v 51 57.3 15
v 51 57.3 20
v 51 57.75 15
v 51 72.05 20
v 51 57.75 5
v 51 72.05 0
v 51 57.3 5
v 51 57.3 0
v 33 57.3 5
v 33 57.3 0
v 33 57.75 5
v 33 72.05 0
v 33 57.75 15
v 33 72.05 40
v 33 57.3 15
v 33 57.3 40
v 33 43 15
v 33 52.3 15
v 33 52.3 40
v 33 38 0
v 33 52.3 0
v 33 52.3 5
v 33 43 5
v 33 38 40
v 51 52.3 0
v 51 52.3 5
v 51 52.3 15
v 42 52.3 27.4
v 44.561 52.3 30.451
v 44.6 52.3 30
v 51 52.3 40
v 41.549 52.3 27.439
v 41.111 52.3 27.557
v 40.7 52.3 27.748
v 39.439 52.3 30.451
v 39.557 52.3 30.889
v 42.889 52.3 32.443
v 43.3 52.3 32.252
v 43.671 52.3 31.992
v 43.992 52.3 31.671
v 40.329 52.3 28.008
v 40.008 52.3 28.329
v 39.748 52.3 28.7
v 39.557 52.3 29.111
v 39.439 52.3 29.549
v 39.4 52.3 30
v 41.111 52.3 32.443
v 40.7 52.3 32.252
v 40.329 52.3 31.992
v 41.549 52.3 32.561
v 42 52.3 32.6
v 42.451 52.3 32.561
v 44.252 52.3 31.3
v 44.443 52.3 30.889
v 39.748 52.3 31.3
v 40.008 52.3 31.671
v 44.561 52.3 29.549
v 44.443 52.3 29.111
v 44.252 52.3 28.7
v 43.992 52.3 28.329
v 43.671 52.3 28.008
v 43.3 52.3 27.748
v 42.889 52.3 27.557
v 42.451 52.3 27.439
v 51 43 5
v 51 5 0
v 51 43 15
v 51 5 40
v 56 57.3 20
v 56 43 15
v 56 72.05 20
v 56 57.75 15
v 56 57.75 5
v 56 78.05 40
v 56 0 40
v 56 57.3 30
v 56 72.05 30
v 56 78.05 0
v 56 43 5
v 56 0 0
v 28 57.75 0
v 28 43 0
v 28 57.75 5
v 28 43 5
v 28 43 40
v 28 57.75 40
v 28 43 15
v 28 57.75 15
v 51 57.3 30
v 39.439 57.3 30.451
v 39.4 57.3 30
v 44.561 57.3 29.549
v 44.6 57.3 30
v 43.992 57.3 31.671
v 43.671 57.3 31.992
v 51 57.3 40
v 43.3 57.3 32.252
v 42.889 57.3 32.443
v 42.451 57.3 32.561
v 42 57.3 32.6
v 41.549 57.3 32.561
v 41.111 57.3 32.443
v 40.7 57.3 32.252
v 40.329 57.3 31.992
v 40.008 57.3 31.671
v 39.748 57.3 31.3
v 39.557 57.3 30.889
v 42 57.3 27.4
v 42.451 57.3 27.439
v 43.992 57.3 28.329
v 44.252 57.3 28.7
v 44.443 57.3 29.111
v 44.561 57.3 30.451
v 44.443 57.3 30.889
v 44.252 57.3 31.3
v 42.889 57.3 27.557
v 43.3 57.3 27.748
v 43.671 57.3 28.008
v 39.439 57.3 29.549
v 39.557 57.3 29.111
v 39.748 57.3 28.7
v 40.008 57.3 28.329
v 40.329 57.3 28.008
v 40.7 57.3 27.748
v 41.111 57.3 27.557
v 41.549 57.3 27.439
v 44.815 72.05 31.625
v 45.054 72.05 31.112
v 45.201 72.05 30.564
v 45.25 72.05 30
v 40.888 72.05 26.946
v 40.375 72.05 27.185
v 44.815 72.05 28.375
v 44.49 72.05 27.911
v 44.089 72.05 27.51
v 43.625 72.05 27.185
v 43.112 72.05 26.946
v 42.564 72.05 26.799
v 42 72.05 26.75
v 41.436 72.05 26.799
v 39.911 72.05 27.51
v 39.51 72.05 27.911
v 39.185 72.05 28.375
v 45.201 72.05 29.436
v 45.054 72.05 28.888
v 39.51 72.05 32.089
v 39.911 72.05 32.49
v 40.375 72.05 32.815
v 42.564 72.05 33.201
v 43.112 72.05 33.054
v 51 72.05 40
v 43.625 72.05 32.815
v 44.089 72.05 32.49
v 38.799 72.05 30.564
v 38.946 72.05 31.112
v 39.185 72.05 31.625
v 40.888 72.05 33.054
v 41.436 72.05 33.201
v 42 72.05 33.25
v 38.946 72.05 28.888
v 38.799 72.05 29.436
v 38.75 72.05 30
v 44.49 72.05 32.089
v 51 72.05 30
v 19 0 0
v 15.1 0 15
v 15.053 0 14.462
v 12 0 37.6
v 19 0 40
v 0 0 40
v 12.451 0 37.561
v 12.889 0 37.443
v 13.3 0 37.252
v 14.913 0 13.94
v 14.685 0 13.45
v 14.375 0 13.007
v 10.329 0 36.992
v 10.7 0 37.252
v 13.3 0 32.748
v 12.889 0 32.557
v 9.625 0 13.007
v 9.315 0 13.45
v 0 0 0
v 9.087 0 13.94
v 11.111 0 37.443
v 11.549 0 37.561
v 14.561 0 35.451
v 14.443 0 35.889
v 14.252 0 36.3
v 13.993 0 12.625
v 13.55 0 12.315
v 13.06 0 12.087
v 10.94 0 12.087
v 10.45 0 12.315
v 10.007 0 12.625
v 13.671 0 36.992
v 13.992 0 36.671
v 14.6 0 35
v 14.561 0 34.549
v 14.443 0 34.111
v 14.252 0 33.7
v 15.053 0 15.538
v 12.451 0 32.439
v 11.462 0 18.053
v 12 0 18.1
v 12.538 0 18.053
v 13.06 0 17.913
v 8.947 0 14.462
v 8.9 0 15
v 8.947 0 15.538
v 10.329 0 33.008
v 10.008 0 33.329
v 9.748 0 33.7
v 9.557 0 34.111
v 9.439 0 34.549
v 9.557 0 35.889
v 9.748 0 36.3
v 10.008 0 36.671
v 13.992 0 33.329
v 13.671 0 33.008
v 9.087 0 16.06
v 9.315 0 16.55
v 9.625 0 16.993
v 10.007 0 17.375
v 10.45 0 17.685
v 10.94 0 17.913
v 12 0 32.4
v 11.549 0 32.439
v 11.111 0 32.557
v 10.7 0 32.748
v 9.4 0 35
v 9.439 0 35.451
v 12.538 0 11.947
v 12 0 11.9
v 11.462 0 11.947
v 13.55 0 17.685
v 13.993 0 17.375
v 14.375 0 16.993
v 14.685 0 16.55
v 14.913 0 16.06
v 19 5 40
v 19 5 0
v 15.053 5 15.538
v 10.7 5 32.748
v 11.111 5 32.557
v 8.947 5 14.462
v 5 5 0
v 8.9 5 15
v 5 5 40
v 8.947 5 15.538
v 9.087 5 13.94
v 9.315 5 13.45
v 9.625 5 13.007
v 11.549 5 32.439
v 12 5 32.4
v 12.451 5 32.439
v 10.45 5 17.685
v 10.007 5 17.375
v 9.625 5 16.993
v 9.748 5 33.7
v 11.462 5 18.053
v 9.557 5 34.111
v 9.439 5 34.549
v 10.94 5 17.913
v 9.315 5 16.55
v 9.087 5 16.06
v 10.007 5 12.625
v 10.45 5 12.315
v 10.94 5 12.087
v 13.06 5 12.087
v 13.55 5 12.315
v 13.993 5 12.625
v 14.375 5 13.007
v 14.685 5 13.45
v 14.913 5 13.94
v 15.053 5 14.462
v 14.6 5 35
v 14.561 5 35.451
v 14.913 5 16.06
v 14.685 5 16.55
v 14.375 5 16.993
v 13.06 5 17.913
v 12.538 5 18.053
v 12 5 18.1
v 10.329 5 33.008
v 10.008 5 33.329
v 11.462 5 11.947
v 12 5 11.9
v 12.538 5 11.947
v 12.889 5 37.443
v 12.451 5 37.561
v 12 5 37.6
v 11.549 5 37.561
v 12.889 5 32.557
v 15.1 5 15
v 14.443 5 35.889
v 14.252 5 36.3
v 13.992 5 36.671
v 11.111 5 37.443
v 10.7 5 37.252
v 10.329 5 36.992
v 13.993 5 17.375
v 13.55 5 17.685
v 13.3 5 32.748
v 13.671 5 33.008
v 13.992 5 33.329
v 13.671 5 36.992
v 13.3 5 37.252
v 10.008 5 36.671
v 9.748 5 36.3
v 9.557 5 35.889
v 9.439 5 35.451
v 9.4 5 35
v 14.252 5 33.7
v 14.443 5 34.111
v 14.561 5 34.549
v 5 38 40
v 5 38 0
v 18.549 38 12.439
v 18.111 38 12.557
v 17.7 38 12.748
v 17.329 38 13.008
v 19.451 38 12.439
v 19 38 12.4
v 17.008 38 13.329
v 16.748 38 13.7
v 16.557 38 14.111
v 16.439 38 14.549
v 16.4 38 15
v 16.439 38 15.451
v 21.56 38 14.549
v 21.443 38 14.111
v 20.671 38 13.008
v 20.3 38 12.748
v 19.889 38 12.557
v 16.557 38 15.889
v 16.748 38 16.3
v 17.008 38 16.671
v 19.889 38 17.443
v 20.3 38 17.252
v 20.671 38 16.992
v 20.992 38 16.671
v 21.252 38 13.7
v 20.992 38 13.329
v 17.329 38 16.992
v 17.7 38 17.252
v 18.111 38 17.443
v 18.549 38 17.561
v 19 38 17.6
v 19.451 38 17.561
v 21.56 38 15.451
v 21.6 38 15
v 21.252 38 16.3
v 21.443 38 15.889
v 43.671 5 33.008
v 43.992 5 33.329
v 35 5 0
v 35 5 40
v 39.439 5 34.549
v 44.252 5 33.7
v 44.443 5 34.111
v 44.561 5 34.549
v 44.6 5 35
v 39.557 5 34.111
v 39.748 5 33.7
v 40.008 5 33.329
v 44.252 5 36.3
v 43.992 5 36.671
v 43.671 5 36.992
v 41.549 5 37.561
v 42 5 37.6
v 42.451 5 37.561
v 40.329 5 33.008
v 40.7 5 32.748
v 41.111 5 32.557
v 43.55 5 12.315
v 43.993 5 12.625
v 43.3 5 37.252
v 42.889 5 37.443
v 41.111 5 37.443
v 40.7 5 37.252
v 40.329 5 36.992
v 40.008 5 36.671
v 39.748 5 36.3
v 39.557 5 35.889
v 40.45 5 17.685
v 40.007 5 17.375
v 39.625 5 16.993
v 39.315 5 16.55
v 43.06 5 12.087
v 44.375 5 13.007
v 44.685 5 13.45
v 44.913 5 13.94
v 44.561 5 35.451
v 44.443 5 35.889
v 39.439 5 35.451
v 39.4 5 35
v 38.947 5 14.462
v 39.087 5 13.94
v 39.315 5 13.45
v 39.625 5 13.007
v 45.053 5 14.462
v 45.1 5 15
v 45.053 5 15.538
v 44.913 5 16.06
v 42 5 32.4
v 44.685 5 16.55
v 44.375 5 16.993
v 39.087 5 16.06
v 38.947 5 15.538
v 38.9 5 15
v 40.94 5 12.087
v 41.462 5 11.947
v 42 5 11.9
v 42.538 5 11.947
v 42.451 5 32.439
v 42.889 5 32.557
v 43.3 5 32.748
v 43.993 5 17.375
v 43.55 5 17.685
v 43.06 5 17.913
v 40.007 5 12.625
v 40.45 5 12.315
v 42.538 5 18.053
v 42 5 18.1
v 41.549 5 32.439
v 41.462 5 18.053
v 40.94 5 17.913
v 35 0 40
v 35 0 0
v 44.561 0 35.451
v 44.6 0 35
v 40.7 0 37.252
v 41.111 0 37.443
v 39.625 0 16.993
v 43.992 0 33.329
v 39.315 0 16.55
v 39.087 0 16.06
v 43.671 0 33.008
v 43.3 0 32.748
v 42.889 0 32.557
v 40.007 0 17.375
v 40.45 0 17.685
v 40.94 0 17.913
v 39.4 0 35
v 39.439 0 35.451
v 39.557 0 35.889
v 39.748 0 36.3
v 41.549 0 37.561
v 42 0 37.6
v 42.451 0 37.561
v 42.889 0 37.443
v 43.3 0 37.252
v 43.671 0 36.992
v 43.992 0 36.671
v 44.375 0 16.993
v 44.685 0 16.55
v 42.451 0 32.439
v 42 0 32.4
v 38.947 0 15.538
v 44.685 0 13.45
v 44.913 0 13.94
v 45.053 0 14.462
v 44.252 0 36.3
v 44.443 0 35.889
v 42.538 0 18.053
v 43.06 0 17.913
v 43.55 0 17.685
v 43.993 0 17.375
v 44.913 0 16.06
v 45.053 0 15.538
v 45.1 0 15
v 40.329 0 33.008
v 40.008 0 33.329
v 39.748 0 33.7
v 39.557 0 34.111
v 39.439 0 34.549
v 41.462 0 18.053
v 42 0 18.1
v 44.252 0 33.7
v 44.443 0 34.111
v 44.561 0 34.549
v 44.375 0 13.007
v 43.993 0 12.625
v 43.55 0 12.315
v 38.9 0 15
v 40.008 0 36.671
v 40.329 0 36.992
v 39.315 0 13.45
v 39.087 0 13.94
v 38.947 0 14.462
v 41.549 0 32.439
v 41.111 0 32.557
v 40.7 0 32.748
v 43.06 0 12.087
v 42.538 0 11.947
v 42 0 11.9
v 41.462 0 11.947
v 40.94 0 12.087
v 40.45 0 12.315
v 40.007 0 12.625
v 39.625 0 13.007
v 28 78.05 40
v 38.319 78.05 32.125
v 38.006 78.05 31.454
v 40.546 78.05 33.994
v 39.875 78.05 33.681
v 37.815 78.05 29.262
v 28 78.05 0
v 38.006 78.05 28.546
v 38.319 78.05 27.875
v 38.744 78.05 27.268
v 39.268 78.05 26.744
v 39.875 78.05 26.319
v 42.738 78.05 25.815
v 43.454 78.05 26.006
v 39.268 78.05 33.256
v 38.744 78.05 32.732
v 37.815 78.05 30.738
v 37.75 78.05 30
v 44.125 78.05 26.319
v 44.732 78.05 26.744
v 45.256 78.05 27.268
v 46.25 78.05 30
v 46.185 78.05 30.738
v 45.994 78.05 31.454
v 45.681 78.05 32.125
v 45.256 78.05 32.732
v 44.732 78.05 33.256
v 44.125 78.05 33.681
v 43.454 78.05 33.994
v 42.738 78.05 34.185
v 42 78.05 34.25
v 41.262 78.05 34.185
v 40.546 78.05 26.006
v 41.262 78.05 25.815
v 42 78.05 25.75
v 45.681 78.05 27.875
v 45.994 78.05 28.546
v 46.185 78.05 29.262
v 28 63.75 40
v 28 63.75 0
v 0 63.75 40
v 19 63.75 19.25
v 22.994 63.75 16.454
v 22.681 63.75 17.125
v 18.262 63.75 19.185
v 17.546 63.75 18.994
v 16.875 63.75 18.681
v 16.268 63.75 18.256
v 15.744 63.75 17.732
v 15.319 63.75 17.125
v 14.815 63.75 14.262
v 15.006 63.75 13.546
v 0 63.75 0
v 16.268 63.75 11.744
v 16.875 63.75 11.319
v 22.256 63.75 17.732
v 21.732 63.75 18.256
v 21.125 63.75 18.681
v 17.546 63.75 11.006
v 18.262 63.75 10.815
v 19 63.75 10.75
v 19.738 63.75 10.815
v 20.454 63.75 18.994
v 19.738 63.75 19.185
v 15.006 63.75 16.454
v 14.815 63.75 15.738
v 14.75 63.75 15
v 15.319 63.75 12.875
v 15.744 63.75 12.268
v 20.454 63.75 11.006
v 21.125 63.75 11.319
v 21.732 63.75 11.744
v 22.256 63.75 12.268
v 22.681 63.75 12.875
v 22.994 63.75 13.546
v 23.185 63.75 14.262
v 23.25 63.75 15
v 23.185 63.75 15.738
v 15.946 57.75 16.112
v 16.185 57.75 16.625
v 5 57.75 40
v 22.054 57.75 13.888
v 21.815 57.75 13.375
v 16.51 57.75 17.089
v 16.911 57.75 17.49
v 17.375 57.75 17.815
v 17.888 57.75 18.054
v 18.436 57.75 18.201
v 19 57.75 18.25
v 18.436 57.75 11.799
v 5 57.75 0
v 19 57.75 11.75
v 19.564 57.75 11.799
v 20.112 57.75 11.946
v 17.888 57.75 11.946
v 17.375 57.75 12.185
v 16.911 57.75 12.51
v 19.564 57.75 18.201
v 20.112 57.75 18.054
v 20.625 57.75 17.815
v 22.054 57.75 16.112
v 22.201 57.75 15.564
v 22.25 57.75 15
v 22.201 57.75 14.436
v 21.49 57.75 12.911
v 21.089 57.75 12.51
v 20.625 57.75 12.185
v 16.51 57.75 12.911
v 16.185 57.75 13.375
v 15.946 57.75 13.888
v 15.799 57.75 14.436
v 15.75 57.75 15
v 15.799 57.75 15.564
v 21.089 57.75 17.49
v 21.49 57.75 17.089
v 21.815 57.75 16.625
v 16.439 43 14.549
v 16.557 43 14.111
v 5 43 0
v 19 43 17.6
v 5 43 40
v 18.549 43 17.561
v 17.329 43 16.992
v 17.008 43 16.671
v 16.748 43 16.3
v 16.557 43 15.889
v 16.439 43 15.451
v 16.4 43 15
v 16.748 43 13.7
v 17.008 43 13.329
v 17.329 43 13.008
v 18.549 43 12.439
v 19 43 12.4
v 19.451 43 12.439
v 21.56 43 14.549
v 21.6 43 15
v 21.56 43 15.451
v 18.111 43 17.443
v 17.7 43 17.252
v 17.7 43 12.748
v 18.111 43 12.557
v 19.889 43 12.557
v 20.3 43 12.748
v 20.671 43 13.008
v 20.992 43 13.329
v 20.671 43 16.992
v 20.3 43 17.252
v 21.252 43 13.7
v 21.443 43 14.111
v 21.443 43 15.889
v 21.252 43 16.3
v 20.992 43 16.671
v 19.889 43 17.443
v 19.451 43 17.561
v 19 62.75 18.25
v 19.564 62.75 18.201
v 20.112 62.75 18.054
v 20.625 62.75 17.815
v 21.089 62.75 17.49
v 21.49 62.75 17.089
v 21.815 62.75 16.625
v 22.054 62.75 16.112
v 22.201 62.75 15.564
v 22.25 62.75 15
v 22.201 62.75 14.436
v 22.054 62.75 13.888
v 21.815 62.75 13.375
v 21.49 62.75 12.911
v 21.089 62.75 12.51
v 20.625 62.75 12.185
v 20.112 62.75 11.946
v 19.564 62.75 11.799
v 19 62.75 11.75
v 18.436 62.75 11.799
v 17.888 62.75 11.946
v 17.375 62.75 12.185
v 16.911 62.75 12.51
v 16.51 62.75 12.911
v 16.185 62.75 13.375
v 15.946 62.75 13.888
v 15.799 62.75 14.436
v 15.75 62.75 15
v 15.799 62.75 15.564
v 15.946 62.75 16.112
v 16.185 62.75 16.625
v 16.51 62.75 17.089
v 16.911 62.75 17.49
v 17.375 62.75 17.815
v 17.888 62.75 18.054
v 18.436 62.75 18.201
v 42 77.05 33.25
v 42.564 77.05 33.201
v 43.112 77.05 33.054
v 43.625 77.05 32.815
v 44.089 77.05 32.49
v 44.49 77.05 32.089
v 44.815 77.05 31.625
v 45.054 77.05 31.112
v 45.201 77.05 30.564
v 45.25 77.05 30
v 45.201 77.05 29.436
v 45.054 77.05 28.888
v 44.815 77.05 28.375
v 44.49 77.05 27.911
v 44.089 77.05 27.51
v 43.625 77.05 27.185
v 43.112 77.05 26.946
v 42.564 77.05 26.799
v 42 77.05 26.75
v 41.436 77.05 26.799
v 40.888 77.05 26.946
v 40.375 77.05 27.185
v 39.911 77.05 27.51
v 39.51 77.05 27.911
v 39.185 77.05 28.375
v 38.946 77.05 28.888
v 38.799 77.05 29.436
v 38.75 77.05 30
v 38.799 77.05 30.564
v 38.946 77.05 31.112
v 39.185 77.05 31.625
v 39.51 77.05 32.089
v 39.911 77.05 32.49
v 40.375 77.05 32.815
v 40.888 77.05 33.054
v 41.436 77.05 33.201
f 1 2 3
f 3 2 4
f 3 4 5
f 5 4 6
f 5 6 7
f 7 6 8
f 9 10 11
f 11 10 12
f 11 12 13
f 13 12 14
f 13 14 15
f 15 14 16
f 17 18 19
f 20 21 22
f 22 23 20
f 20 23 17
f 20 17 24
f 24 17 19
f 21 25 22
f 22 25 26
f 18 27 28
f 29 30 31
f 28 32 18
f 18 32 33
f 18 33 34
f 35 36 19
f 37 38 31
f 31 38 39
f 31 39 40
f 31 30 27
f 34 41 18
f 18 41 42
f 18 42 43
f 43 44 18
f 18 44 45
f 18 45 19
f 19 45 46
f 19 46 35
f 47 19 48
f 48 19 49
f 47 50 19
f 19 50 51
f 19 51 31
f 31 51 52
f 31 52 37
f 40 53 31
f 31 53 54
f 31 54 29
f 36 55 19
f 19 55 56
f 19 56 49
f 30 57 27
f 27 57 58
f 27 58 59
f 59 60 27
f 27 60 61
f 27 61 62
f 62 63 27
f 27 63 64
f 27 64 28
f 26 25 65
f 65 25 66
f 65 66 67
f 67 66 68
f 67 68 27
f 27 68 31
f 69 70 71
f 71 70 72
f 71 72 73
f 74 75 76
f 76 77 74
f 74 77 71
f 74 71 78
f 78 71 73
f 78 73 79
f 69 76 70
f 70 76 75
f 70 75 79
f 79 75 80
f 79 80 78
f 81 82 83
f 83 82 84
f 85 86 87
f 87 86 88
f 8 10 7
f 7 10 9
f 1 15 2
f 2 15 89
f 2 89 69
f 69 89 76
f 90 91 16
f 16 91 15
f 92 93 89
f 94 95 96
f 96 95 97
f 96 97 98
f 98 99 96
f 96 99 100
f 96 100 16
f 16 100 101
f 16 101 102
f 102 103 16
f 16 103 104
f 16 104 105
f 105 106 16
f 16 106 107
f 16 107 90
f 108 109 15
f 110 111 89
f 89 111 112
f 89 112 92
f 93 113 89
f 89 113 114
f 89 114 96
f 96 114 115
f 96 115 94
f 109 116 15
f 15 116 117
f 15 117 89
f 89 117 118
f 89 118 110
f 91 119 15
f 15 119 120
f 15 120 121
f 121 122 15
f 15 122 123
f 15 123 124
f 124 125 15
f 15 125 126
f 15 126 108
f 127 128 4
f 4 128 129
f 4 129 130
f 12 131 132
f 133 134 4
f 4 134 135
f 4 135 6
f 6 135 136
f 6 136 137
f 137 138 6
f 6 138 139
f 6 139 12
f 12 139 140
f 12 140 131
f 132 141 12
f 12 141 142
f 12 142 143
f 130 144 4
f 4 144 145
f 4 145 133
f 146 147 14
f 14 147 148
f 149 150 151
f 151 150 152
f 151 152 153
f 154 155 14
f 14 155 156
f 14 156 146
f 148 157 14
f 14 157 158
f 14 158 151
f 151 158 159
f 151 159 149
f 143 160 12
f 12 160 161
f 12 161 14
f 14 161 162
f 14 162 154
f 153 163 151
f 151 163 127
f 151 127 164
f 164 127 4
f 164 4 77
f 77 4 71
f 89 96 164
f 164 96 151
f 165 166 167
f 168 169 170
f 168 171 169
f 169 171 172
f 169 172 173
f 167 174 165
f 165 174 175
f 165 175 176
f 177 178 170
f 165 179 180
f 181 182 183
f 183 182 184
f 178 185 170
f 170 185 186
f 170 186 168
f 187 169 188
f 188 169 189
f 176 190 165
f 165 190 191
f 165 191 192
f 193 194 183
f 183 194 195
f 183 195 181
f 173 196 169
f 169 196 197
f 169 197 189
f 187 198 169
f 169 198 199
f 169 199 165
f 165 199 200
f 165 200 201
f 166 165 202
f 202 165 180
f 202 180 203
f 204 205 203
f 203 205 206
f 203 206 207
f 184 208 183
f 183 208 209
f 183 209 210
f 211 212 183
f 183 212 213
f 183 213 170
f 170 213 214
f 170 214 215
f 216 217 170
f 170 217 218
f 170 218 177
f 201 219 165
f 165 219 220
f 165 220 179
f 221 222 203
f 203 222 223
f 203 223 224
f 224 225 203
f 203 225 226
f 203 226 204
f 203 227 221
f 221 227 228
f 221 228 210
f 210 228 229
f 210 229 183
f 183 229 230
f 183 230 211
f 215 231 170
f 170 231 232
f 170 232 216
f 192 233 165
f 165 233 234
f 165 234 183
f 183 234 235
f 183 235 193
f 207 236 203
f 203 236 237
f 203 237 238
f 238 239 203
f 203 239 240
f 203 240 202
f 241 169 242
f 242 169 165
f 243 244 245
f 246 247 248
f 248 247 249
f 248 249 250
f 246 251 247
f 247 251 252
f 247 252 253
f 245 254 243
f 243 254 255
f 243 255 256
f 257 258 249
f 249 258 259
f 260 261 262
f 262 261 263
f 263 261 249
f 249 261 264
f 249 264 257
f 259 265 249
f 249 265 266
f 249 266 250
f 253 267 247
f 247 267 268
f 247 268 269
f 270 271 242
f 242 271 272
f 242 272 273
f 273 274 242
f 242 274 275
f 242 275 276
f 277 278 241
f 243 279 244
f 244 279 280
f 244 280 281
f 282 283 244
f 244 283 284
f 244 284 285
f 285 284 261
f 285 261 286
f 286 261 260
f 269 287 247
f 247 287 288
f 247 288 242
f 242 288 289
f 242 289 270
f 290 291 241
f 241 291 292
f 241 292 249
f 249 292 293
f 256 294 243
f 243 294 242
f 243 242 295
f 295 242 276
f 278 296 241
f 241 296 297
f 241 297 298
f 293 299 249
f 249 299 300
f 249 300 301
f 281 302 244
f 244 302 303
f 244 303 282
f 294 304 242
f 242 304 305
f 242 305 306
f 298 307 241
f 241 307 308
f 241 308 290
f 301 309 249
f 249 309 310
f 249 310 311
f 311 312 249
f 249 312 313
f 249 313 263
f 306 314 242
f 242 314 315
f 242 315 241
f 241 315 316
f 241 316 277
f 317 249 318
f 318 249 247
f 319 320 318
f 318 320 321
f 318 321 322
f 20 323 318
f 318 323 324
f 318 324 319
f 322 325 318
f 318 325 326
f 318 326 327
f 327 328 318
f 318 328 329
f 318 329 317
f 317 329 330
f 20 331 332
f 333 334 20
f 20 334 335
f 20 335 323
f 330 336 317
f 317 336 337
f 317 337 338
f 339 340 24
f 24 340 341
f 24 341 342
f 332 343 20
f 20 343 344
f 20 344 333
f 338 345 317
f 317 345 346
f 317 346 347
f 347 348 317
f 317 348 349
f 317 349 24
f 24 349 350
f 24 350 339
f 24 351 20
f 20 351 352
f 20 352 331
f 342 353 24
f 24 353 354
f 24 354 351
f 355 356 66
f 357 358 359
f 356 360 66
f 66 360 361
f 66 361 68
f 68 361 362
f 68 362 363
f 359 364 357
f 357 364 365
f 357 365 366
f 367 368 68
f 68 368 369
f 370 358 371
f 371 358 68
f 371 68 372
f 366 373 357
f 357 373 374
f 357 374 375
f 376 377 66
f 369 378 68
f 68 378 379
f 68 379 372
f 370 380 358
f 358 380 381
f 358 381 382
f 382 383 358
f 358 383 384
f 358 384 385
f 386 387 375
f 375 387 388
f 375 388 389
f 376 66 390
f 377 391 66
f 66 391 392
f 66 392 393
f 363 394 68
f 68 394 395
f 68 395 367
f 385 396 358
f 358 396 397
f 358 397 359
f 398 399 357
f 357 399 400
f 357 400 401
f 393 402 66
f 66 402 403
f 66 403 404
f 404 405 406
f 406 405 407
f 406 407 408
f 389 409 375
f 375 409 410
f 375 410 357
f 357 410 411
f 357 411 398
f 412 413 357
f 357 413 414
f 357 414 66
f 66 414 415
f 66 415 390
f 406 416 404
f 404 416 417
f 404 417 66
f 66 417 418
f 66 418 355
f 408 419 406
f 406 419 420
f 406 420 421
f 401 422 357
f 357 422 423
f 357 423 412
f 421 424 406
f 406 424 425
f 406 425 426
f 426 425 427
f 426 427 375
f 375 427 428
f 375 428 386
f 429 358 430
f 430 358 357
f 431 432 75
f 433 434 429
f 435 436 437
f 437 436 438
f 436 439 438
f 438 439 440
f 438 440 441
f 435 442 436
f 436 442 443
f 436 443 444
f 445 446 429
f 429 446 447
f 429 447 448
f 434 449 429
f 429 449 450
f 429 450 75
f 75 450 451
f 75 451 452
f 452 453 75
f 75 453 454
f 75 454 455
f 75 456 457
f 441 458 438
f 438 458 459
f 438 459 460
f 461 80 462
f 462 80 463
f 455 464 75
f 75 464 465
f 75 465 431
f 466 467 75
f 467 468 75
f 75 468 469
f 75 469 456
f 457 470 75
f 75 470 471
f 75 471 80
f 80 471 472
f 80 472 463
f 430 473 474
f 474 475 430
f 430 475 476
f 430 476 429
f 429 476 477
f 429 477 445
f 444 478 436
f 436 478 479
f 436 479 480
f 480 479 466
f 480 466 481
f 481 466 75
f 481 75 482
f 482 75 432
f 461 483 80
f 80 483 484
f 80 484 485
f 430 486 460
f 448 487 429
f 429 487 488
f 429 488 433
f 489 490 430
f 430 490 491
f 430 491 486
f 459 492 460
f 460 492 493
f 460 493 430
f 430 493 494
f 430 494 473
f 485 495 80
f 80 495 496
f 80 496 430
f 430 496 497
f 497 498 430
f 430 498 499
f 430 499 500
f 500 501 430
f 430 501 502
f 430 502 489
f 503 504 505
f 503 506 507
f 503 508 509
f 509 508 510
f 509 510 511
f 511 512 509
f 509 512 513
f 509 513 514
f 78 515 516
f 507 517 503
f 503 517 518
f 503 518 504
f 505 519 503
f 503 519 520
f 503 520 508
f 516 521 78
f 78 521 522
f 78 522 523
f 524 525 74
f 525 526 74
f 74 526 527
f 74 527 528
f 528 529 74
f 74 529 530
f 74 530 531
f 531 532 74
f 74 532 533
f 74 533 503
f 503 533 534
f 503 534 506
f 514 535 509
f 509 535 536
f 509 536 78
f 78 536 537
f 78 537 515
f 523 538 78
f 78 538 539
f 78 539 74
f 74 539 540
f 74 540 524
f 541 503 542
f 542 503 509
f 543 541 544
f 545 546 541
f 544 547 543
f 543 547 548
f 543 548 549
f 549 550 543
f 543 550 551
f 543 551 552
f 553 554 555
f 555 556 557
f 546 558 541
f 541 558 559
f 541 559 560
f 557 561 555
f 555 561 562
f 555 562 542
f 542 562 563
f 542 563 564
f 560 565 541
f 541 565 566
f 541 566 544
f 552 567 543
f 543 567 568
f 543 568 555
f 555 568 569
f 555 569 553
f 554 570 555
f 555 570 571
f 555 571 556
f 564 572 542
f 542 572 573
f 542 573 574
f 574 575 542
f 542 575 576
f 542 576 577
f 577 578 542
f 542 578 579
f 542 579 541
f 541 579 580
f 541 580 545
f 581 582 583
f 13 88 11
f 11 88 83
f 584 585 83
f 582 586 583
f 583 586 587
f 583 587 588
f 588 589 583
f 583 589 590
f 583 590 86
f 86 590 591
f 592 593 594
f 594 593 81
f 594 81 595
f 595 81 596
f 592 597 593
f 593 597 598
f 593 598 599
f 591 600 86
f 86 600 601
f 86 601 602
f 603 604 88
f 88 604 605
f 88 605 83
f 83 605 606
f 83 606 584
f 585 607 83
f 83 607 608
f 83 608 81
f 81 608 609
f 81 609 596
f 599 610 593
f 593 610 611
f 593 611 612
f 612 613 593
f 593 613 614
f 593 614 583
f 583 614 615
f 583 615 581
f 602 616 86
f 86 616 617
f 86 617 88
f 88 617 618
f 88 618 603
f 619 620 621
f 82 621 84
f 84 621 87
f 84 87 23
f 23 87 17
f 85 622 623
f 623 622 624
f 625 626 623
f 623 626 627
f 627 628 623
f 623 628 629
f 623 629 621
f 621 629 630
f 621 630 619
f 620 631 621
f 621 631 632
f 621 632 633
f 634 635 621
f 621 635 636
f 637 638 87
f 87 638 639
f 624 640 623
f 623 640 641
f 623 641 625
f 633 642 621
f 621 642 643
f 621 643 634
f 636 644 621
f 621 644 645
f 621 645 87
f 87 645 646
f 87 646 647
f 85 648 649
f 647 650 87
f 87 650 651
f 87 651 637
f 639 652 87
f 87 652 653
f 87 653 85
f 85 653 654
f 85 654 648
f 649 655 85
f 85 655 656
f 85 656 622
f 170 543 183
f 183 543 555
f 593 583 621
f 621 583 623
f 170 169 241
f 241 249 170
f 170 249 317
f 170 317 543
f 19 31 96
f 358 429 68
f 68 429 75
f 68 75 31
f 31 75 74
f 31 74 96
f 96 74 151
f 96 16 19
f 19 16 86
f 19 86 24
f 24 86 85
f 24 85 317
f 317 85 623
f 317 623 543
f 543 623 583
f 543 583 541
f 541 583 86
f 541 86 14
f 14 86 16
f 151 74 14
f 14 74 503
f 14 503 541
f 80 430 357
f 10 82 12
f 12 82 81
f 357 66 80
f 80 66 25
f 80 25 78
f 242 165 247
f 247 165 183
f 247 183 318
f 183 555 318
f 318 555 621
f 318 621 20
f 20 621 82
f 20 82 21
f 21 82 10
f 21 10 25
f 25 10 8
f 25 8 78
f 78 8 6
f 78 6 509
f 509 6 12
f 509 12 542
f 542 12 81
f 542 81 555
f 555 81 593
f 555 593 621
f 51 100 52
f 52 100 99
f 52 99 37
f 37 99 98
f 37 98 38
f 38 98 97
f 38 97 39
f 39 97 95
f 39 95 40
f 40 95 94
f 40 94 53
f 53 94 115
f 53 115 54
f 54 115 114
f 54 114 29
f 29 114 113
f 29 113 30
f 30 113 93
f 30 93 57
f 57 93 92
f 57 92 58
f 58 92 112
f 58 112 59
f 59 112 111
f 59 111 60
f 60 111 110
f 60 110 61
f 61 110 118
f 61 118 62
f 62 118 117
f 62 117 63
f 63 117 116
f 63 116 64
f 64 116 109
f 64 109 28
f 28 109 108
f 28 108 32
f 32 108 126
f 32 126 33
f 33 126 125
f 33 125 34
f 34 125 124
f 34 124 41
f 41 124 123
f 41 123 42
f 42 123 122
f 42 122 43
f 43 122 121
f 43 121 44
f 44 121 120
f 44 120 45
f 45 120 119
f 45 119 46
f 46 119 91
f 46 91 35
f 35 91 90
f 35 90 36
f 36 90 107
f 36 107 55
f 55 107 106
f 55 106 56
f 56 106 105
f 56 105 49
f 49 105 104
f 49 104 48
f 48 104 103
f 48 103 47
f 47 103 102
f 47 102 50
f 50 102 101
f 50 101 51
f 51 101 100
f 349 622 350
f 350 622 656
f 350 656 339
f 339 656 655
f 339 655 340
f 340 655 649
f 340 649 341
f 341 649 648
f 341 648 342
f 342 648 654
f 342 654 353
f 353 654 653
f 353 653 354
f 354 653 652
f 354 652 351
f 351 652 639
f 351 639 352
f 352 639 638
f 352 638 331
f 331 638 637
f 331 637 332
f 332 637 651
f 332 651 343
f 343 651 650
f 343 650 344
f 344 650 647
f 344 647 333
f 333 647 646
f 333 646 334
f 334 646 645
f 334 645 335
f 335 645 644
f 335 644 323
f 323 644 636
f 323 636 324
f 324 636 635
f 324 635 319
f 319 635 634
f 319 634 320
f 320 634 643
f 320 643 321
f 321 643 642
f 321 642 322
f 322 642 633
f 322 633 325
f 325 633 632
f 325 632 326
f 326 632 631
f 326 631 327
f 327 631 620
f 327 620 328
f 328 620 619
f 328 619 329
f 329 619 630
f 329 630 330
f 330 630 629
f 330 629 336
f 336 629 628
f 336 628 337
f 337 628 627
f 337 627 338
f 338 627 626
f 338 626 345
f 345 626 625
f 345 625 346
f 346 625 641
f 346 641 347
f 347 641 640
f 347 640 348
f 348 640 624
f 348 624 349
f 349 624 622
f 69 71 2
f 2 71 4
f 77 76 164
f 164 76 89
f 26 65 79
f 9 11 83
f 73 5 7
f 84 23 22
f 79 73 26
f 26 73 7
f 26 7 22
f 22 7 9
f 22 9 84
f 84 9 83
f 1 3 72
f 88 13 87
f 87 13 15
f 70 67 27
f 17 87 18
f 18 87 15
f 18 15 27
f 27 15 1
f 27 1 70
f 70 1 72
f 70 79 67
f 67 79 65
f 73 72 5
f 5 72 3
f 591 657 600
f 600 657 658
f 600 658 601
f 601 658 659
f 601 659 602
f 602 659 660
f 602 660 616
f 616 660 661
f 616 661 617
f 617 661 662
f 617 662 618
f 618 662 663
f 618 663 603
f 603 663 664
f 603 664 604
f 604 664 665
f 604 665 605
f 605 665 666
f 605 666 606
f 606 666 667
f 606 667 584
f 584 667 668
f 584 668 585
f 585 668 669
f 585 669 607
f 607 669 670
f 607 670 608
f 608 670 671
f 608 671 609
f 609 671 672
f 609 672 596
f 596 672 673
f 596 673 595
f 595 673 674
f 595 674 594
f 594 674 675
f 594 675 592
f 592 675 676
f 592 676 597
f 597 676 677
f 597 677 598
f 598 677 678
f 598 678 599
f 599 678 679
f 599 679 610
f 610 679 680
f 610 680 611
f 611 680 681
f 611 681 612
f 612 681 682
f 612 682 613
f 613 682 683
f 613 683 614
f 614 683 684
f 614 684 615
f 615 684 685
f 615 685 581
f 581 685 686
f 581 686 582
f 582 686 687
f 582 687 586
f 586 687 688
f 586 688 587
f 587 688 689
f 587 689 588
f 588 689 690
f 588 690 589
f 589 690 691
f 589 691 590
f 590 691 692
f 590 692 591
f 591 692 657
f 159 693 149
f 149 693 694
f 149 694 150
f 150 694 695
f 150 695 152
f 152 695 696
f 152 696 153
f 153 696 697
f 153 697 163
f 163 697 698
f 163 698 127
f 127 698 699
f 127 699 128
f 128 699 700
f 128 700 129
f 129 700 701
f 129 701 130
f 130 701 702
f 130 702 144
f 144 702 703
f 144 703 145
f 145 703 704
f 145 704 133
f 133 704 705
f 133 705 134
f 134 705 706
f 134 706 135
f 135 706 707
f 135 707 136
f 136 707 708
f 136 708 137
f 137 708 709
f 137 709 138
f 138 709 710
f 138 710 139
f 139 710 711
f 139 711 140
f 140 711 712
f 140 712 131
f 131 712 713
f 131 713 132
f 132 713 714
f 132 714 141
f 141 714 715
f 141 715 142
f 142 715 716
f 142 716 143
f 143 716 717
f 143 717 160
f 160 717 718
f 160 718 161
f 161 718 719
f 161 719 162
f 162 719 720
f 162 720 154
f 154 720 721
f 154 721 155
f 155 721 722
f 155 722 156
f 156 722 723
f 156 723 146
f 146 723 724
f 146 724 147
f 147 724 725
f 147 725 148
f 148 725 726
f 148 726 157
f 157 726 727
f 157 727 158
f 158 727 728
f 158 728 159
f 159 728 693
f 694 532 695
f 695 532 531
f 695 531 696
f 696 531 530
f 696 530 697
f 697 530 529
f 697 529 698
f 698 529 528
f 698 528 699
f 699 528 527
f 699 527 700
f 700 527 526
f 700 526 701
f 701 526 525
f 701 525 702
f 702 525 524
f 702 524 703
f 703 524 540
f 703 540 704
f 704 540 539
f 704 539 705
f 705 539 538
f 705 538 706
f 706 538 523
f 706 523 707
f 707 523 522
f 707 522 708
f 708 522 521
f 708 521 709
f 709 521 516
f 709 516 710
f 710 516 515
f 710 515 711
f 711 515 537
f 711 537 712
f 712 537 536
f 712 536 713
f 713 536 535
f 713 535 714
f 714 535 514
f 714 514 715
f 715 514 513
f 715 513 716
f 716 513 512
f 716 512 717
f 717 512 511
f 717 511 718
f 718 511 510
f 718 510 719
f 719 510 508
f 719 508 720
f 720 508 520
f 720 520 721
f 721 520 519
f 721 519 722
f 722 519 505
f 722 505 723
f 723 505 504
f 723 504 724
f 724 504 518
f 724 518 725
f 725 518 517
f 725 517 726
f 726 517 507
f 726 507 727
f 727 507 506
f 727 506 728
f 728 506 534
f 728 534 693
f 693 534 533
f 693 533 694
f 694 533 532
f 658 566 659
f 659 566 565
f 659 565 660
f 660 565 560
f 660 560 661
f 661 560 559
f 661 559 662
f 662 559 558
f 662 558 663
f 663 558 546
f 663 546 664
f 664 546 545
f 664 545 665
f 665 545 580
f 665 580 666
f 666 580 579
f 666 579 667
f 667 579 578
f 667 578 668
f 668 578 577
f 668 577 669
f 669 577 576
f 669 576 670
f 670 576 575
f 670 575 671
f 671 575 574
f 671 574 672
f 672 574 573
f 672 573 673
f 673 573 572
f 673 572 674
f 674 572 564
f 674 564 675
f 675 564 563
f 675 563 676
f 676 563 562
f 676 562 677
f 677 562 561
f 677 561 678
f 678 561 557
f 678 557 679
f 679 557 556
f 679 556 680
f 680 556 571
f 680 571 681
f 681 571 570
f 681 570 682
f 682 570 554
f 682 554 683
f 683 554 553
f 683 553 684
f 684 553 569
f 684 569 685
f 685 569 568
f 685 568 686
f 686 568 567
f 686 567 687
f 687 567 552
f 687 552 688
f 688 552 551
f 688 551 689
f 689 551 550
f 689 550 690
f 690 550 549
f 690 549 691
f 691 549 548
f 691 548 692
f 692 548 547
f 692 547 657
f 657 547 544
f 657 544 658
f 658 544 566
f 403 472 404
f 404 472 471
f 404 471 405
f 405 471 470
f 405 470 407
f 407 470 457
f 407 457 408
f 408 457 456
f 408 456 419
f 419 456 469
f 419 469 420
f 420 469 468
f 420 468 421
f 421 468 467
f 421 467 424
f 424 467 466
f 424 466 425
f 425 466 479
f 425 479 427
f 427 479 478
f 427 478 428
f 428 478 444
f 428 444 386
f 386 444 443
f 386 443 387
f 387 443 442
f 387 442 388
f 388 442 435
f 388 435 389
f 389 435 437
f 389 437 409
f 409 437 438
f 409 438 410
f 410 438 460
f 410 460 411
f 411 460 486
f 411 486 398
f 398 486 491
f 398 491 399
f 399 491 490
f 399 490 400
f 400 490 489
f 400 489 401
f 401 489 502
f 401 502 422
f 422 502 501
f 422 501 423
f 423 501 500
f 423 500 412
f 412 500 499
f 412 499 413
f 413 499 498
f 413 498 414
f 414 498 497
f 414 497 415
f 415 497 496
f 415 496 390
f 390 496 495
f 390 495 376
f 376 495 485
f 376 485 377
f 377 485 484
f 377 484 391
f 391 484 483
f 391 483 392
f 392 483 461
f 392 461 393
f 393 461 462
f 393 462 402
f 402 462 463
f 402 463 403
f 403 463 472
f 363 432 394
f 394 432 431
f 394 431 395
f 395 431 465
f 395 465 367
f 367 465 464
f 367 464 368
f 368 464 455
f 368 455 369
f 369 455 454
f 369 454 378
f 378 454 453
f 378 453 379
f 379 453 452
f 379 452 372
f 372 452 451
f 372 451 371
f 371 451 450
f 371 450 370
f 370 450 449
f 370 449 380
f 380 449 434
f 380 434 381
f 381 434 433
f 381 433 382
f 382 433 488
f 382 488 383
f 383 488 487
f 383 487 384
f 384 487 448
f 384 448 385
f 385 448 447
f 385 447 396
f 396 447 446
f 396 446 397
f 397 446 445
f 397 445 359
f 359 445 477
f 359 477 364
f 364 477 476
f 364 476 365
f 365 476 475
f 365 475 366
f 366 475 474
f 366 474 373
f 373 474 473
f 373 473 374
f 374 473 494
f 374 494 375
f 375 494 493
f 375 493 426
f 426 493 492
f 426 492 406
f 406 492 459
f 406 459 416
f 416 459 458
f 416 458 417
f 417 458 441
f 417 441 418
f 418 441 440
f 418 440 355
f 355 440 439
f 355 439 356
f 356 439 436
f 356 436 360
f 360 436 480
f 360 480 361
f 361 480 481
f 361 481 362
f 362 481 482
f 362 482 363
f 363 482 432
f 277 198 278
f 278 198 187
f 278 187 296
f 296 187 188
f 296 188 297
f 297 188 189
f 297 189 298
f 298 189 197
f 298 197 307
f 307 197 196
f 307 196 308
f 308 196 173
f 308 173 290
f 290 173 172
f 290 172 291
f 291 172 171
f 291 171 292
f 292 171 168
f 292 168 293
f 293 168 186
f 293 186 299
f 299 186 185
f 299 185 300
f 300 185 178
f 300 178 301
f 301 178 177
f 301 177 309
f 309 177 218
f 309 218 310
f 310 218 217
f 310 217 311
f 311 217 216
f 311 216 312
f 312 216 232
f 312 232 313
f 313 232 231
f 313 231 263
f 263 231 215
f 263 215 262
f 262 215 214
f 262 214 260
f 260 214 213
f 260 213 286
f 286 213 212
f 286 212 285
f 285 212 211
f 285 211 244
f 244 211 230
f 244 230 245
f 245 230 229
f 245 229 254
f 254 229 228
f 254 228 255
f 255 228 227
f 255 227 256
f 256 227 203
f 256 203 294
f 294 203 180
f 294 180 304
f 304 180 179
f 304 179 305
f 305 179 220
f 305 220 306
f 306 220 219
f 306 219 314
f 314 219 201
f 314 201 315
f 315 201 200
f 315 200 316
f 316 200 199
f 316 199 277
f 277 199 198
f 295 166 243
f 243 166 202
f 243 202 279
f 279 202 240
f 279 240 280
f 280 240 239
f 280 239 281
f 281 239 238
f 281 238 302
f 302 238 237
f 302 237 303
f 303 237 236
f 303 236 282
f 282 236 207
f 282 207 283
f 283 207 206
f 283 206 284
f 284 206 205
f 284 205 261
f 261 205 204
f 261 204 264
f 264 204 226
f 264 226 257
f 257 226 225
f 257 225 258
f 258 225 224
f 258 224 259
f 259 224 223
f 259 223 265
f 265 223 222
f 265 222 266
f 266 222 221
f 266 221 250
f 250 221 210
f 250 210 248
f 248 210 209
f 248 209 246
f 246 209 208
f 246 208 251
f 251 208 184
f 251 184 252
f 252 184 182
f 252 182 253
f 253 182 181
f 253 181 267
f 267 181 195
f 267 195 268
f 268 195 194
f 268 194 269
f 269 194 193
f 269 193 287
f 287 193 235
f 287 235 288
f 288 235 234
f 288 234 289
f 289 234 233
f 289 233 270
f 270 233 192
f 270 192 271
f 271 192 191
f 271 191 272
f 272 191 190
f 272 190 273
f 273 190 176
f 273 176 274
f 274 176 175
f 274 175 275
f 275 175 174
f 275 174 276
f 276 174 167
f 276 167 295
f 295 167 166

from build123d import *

# Parameters (mm, degrees)
SKETCH1_W           = 18
SKETCH1_H           = 14.75
SKETCH1_W_2         = 23
BOSS_EXTRUDE1_DEPTH = 40
CUT_EXTRUDE1_REACH  = 106.057
SKETCH2_R           = 2.6
CUT_EXTRUDE2_REACH  = 106.057
SKETCH3_W           = 10
SKETCH3_H           = 14.75
SKETCH4_W           = 10
SKETCH4_H           = 14.75
CUT_EXTRUDE3_DEPTH  = 102.453449917
CUT_EXTRUDE4_REACH  = 106.057
SKETCH6_R           = 3.25
CHAMFER1_SIZE       = 1
CUT_EXTRUDE5_REACH  = 106.057
SKETCH7_R           = 2.6
SKETCH7_R_2         = 3.1


with BuildPart() as part:
    # Sketch1 → Boss-Extrude1 (new body)
    with BuildSketch(Plane.XY):
        Polygon((0, 0), (0, 63.75), (28, 63.75), (28, 78.05), (56, 78.05), (56, 0), (35, 0), (35, 5), (51, 5), (51, 52.3), (33, 52.3), (33, 38), (5, 38), (5, 5), (19, 5), (19, 0), align=None)
        with Locations((42, 64.675)):
            Rectangle(SKETCH1_W, SKETCH1_H, mode=Mode.SUBTRACT)
        with Locations((16.5, 50.375)):
            Rectangle(SKETCH1_W_2, SKETCH1_H, mode=Mode.SUBTRACT)
    extrude(amount=BOSS_EXTRUDE1_DEPTH)

    # Cut-Extrude1: up to this face of the body (flat: up to its plane)
    cut_extrude1_end = Plane(part.part.faces().sort_by_distance((19, 38, 20))[0])
    # Sketch2 → Cut-Extrude1 (cut, up to the picked face)
    with BuildSketch(Plane(origin=(0, 78.05, 0), x_dir=(1, 0, 0), z_dir=(0, 1, 0)), mode=Mode.PRIVATE) as cut_extrude1_sk1:
        with Locations(Location((19, -15, 0), (0, 0, 270))):
            Circle(SKETCH2_R)
    cut_extrude1_tool1 = split(extrude(cut_extrude1_sk1.sketch, amount=-CUT_EXTRUDE1_REACH, mode=Mode.PRIVATE), bisect_by=cut_extrude1_end, keep=Keep.BOTH, mode=Mode.PRIVATE)
    # Sketch2 → Cut-Extrude1 (cut, up to the picked face)
    with BuildSketch(Plane(origin=(0, 78.05, 0), x_dir=(1, 0, 0), z_dir=(0, 1, 0)), mode=Mode.PRIVATE) as cut_extrude1_sk2:
        with Locations(Location((42, -30, 0), (0, 0, 270))):
            Circle(SKETCH2_R)
    cut_extrude1_tool2 = split(extrude(cut_extrude1_sk2.sketch, amount=-CUT_EXTRUDE1_REACH, mode=Mode.PRIVATE), bisect_by=cut_extrude1_end, keep=Keep.BOTH, mode=Mode.PRIVATE)
    add(cut_extrude1_tool1.solids().sort_by(Axis((19, 78.05, 15), (0, -1, 0)))[0], mode=Mode.SUBTRACT)
    add(cut_extrude1_tool2.solids().sort_by(Axis((42, 78.05, 30), (0, -1, 0)))[0], mode=Mode.SUBTRACT)

    # Sketch3 → Cut-Extrude2 (cut, up to next)
    with BuildSketch(Plane(origin=(56, 0, 0), x_dir=(0, 0, -1), z_dir=(1, 0, 0)), mode=Mode.PRIVATE) as cut_extrude2_sk1:
        with Locations((-25, 64.675)):
            Rectangle(SKETCH3_W, SKETCH3_H)
    cut_extrude2_tool1 = extrude(cut_extrude2_sk1.sketch, amount=-CUT_EXTRUDE2_REACH, mode=Mode.PRIVATE) & part.part
    add(cut_extrude2_tool1.solids().sort_by_distance((56, 64.675, 25))[0], mode=Mode.SUBTRACT)

    # Sketch4 → Cut-Extrude3 (cut, through all)
    with BuildSketch(Plane(origin=(5, 0, 0), x_dir=(0, 0, -1), z_dir=(1, 0, 0))):
        with Locations((-10, 50.375)):
            Rectangle(SKETCH4_W, SKETCH4_H)
    extrude(amount=CUT_EXTRUDE3_DEPTH, mode=Mode.SUBTRACT)

    # Sketch6 → Cut-Extrude4 (cut, up to next)
    with BuildSketch(Plane(origin=(0, 78.05, 0), x_dir=(1, 0, 0), z_dir=(0, 1, 0)), mode=Mode.PRIVATE) as cut_extrude4_sk1:
        with Locations(Location((19, -15, 0), (0, 0, 270))):
            Circle(SKETCH6_R)
    cut_extrude4_tool1 = extrude(cut_extrude4_sk1.sketch, amount=-CUT_EXTRUDE4_REACH, mode=Mode.PRIVATE) & part.part
    # Sketch6 → Cut-Extrude4 (cut, up to next)
    with BuildSketch(Plane(origin=(0, 78.05, 0), x_dir=(1, 0, 0), z_dir=(0, 1, 0)), mode=Mode.PRIVATE) as cut_extrude4_sk2:
        with Locations(Location((42, -30, 0), (0, 0, 270))):
            Circle(SKETCH6_R)
    cut_extrude4_tool2 = extrude(cut_extrude4_sk2.sketch, amount=-CUT_EXTRUDE4_REACH, mode=Mode.PRIVATE) & part.part
    add(cut_extrude4_tool1.solids().sort_by_distance((19, 78.05, 15))[0], mode=Mode.SUBTRACT)
    add(cut_extrude4_tool2.solids().sort_by_distance((42, 78.05, 30))[0], mode=Mode.SUBTRACT)

    # Chamfer1
    chamfer1_edges = [part.edges().sort_by_distance(p)[0] for p in [
        (19, 63.75, 11.75),
        (42, 78.05, 26.75),
    ]]
    chamfer(chamfer1_edges, length=CHAMFER1_SIZE)

    # Sketch7 → Cut-Extrude5 (cut, up to next)
    with BuildSketch(Plane.XZ, mode=Mode.PRIVATE) as cut_extrude5_sk1:
        with Locations((12, 35)):
            Circle(SKETCH7_R)
    cut_extrude5_tool1 = extrude(cut_extrude5_sk1.sketch, amount=-CUT_EXTRUDE5_REACH, mode=Mode.PRIVATE) & part.part
    # Sketch7 → Cut-Extrude5 (cut, up to next)
    with BuildSketch(Plane.XZ, mode=Mode.PRIVATE) as cut_extrude5_sk2:
        with Locations((42, 35)):
            Circle(SKETCH7_R)
    cut_extrude5_tool2 = extrude(cut_extrude5_sk2.sketch, amount=-CUT_EXTRUDE5_REACH, mode=Mode.PRIVATE) & part.part
    # Sketch7 → Cut-Extrude5 (cut, up to next)
    with BuildSketch(Plane.XZ, mode=Mode.PRIVATE) as cut_extrude5_sk3:
        with Locations((12, 15)):
            Circle(SKETCH7_R_2)
    cut_extrude5_tool3 = extrude(cut_extrude5_sk3.sketch, amount=-CUT_EXTRUDE5_REACH, mode=Mode.PRIVATE) & part.part
    # Sketch7 → Cut-Extrude5 (cut, up to next)
    with BuildSketch(Plane.XZ, mode=Mode.PRIVATE) as cut_extrude5_sk4:
        with Locations((42, 15)):
            Circle(SKETCH7_R_2)
    cut_extrude5_tool4 = extrude(cut_extrude5_sk4.sketch, amount=-CUT_EXTRUDE5_REACH, mode=Mode.PRIVATE) & part.part
    add(cut_extrude5_tool1.solids().sort_by_distance((12, 0, 35))[0], mode=Mode.SUBTRACT)
    add(cut_extrude5_tool2.solids().sort_by_distance((42, 0, 35))[0], mode=Mode.SUBTRACT)
    add(cut_extrude5_tool3.solids().sort_by_distance((12, 0, 15))[0], mode=Mode.SUBTRACT)
    add(cut_extrude5_tool4.solids().sort_by_distance((42, 0, 15))[0], mode=Mode.SUBTRACT)


solid = part.part
